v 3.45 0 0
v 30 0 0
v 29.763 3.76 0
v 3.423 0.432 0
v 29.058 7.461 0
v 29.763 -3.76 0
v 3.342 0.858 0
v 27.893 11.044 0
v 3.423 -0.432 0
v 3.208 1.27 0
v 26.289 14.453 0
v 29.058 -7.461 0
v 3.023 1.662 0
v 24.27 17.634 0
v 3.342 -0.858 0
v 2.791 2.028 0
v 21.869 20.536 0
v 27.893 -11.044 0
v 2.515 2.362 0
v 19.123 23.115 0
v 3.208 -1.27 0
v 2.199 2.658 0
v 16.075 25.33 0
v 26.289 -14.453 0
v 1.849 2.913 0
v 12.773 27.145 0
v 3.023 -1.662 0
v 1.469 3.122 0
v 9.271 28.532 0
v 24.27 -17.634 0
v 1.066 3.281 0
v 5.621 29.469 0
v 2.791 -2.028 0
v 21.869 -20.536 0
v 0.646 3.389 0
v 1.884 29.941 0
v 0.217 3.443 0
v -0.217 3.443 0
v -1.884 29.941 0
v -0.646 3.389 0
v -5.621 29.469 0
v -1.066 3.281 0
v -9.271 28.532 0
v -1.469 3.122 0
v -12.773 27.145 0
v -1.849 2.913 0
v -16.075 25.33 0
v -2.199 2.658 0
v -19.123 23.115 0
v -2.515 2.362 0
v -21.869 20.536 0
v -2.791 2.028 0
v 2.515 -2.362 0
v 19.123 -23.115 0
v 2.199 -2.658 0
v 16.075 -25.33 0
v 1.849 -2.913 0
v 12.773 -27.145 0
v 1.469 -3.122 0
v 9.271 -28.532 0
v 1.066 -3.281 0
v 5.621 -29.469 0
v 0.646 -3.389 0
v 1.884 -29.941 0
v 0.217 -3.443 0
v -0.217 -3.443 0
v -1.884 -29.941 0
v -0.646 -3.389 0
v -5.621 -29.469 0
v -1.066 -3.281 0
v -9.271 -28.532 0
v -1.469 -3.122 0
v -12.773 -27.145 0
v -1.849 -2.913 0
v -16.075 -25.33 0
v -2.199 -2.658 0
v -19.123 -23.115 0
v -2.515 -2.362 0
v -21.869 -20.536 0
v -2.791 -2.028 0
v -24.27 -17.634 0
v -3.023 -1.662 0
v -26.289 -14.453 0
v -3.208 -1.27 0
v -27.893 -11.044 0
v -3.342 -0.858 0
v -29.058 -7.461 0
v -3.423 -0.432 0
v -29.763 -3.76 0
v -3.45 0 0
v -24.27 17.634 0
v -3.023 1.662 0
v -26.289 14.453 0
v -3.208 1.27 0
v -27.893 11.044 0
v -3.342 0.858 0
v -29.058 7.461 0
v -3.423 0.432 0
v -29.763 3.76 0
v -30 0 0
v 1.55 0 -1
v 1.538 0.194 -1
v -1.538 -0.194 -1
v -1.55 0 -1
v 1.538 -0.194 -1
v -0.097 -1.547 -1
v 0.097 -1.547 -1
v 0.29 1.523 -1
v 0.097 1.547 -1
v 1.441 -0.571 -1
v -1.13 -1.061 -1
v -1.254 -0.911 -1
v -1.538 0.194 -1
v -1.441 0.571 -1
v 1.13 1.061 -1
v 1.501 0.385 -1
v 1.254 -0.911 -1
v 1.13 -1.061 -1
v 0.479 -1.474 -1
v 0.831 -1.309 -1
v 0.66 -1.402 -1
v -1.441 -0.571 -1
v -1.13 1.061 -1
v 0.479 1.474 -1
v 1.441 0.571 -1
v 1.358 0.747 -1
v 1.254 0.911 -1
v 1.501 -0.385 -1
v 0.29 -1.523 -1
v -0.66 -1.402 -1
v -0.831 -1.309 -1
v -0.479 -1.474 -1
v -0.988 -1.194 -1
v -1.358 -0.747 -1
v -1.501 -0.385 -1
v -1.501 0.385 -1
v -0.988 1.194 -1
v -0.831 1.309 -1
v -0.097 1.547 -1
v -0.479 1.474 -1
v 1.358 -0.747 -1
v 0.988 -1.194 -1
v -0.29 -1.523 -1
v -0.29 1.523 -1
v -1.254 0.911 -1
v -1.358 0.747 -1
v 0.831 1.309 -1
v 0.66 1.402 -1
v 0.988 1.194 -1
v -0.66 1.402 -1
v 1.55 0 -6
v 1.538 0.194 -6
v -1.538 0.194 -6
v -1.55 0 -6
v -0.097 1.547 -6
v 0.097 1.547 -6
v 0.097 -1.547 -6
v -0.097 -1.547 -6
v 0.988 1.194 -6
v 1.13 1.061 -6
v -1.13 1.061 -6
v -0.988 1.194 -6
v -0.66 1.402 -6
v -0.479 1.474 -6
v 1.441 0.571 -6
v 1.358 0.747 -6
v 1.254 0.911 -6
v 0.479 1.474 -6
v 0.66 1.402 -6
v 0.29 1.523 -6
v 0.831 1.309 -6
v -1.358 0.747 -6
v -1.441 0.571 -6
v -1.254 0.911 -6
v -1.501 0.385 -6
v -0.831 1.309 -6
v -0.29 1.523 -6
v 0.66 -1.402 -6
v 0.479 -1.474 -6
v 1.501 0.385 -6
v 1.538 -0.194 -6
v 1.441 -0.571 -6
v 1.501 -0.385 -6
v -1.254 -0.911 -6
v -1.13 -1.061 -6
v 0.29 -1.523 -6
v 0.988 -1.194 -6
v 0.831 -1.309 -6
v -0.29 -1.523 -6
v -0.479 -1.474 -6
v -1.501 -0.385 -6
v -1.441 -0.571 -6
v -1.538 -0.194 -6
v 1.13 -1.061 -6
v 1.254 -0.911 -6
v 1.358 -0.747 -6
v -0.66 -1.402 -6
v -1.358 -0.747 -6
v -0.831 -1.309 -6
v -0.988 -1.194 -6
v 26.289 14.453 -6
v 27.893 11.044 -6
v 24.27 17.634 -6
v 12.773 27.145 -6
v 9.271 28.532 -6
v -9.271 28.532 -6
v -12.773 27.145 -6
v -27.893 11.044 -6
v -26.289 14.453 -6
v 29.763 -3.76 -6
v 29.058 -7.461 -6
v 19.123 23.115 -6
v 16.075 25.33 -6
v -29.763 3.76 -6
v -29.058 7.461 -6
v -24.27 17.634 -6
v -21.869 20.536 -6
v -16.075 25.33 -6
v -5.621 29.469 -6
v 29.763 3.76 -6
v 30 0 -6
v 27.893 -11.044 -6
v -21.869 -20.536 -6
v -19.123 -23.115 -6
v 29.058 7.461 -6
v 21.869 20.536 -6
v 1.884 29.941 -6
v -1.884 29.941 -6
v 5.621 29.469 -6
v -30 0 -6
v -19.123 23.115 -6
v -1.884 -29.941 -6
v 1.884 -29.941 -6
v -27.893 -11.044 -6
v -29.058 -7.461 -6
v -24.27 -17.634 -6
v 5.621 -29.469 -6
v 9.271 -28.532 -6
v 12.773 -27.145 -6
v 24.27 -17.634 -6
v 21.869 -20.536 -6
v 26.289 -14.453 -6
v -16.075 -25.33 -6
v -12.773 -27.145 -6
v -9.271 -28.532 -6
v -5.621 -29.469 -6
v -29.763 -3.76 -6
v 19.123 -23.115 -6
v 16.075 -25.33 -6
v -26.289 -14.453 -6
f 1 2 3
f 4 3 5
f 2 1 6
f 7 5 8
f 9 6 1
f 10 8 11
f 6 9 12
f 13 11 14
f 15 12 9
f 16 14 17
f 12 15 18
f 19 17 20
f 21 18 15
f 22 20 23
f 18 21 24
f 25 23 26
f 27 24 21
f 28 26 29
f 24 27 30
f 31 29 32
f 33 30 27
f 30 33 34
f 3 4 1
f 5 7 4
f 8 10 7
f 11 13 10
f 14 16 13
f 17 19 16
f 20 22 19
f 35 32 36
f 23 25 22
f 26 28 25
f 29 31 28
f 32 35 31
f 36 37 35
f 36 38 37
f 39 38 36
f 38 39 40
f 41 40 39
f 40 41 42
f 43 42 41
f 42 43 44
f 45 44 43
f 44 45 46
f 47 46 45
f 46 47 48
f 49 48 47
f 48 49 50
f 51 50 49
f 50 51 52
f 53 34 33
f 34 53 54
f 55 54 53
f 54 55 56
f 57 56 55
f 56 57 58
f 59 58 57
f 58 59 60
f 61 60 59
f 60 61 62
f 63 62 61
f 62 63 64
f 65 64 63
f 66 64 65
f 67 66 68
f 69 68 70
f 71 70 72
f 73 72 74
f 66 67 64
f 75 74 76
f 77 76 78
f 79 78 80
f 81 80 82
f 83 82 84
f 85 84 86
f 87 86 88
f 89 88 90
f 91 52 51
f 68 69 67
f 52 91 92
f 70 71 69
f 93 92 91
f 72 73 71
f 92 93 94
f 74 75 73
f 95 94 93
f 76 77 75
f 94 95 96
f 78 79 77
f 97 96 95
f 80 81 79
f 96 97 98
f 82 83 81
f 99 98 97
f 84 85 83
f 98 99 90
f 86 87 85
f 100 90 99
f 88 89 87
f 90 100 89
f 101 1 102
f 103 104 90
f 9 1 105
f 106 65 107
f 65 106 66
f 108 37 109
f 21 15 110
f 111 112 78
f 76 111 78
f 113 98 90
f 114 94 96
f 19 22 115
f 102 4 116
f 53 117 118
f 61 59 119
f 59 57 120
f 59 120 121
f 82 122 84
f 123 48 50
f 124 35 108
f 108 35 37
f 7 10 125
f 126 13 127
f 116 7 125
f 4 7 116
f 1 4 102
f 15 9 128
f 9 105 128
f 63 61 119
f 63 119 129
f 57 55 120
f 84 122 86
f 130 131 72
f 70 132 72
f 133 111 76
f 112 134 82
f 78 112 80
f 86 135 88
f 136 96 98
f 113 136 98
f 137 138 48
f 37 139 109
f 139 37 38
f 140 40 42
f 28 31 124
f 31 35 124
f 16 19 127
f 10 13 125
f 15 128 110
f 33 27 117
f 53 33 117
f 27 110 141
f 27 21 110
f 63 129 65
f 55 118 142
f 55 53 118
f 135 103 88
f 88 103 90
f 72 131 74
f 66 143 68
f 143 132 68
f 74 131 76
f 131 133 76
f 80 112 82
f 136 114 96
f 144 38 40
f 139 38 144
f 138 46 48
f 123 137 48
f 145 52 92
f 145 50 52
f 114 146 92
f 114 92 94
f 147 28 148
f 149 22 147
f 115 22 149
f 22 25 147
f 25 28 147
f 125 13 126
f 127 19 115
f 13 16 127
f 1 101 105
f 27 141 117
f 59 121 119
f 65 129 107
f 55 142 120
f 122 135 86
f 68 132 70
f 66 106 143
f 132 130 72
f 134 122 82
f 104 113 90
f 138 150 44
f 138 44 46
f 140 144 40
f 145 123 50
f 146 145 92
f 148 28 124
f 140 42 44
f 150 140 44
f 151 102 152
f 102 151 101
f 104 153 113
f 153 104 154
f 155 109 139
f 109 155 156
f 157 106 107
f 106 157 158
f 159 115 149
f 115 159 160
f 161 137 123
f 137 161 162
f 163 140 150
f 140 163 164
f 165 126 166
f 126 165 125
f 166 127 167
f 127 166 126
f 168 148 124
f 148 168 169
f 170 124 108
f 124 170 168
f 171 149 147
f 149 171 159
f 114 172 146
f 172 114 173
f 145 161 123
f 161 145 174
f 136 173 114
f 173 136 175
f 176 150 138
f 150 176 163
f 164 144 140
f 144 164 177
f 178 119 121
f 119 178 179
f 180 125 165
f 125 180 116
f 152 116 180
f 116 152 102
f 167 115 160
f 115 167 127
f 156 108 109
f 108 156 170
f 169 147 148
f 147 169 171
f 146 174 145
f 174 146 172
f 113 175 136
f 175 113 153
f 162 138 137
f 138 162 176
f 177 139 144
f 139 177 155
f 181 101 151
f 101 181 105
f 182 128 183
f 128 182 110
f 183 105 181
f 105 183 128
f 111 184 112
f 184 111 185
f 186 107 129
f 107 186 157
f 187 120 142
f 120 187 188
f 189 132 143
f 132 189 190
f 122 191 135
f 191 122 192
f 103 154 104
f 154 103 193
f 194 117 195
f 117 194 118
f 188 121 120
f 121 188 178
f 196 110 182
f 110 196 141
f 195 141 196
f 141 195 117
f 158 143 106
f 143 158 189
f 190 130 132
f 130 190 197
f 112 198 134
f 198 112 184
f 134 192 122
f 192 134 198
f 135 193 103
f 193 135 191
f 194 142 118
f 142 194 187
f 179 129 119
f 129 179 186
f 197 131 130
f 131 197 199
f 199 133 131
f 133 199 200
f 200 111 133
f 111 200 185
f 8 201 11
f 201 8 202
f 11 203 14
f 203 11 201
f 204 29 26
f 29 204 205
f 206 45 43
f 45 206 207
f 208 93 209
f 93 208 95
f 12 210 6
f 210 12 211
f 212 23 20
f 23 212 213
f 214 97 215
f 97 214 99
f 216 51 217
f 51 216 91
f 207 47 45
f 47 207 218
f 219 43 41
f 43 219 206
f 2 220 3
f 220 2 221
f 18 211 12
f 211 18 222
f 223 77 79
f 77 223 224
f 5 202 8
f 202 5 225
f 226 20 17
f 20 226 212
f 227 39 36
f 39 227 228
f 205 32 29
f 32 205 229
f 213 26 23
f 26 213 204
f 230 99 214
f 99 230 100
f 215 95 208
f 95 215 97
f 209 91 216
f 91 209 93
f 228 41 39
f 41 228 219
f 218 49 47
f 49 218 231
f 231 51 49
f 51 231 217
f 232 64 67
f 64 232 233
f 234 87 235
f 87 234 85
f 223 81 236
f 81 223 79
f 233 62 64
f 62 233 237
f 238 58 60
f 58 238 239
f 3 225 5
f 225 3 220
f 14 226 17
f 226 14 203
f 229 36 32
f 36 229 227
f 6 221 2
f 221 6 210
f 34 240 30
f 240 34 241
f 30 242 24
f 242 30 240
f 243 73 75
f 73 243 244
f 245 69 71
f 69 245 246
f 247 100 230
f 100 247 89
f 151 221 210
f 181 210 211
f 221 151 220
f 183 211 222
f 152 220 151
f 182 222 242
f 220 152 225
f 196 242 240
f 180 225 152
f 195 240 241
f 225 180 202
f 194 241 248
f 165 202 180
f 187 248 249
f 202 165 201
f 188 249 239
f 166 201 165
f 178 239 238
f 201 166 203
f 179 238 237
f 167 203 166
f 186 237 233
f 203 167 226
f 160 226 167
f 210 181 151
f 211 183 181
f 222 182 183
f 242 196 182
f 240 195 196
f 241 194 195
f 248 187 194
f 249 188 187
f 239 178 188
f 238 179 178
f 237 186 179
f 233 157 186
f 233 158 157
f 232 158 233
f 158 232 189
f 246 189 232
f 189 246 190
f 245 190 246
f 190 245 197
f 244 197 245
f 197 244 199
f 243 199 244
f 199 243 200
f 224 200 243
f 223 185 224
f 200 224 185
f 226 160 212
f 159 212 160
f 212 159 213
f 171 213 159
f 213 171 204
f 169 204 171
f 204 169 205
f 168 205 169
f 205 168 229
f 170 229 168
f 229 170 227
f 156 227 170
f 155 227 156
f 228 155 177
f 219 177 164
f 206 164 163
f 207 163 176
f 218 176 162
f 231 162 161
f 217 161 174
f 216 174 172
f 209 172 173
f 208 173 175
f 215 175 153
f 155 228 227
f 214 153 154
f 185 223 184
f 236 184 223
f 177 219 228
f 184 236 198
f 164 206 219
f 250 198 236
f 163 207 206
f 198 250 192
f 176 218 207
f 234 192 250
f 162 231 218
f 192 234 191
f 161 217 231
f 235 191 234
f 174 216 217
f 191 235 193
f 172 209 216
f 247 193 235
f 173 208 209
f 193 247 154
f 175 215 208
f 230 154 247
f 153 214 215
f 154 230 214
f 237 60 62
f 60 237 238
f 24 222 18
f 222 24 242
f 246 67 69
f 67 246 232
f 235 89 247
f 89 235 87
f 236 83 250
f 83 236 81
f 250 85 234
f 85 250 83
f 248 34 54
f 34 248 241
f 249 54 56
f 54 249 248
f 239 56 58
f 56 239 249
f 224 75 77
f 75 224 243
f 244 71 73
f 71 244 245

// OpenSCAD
$fn = 50;

difference() {
	union() {
		translate(v = [0, 0, -6.0]) {
			cylinder(h = 6, r = 30.0);
		}
	}
	union() {
		translate(v = [0, 0, 0]) {
			rotate(a = [0, 0, 0]) {
				difference() {
					union() {
						translate(v = [0, 0, -9.0]) {
							cylinder(h = 9, r = 1.25);
						}
						translate(v = [0, 0, -1.0]) {
							cylinder(h = 1.0, r1 = 1.55, r2 = 3.45);
						}
						translate(v = [0, 0, -9.0]) {
							cylinder(h = 9, r = 1.55);
						}
						translate(v = [0, 0, -9.0]) {
							cylinder(h = 9, r = 1.25);
						}
					}
					union();
				}
			}
		}
	}
}
